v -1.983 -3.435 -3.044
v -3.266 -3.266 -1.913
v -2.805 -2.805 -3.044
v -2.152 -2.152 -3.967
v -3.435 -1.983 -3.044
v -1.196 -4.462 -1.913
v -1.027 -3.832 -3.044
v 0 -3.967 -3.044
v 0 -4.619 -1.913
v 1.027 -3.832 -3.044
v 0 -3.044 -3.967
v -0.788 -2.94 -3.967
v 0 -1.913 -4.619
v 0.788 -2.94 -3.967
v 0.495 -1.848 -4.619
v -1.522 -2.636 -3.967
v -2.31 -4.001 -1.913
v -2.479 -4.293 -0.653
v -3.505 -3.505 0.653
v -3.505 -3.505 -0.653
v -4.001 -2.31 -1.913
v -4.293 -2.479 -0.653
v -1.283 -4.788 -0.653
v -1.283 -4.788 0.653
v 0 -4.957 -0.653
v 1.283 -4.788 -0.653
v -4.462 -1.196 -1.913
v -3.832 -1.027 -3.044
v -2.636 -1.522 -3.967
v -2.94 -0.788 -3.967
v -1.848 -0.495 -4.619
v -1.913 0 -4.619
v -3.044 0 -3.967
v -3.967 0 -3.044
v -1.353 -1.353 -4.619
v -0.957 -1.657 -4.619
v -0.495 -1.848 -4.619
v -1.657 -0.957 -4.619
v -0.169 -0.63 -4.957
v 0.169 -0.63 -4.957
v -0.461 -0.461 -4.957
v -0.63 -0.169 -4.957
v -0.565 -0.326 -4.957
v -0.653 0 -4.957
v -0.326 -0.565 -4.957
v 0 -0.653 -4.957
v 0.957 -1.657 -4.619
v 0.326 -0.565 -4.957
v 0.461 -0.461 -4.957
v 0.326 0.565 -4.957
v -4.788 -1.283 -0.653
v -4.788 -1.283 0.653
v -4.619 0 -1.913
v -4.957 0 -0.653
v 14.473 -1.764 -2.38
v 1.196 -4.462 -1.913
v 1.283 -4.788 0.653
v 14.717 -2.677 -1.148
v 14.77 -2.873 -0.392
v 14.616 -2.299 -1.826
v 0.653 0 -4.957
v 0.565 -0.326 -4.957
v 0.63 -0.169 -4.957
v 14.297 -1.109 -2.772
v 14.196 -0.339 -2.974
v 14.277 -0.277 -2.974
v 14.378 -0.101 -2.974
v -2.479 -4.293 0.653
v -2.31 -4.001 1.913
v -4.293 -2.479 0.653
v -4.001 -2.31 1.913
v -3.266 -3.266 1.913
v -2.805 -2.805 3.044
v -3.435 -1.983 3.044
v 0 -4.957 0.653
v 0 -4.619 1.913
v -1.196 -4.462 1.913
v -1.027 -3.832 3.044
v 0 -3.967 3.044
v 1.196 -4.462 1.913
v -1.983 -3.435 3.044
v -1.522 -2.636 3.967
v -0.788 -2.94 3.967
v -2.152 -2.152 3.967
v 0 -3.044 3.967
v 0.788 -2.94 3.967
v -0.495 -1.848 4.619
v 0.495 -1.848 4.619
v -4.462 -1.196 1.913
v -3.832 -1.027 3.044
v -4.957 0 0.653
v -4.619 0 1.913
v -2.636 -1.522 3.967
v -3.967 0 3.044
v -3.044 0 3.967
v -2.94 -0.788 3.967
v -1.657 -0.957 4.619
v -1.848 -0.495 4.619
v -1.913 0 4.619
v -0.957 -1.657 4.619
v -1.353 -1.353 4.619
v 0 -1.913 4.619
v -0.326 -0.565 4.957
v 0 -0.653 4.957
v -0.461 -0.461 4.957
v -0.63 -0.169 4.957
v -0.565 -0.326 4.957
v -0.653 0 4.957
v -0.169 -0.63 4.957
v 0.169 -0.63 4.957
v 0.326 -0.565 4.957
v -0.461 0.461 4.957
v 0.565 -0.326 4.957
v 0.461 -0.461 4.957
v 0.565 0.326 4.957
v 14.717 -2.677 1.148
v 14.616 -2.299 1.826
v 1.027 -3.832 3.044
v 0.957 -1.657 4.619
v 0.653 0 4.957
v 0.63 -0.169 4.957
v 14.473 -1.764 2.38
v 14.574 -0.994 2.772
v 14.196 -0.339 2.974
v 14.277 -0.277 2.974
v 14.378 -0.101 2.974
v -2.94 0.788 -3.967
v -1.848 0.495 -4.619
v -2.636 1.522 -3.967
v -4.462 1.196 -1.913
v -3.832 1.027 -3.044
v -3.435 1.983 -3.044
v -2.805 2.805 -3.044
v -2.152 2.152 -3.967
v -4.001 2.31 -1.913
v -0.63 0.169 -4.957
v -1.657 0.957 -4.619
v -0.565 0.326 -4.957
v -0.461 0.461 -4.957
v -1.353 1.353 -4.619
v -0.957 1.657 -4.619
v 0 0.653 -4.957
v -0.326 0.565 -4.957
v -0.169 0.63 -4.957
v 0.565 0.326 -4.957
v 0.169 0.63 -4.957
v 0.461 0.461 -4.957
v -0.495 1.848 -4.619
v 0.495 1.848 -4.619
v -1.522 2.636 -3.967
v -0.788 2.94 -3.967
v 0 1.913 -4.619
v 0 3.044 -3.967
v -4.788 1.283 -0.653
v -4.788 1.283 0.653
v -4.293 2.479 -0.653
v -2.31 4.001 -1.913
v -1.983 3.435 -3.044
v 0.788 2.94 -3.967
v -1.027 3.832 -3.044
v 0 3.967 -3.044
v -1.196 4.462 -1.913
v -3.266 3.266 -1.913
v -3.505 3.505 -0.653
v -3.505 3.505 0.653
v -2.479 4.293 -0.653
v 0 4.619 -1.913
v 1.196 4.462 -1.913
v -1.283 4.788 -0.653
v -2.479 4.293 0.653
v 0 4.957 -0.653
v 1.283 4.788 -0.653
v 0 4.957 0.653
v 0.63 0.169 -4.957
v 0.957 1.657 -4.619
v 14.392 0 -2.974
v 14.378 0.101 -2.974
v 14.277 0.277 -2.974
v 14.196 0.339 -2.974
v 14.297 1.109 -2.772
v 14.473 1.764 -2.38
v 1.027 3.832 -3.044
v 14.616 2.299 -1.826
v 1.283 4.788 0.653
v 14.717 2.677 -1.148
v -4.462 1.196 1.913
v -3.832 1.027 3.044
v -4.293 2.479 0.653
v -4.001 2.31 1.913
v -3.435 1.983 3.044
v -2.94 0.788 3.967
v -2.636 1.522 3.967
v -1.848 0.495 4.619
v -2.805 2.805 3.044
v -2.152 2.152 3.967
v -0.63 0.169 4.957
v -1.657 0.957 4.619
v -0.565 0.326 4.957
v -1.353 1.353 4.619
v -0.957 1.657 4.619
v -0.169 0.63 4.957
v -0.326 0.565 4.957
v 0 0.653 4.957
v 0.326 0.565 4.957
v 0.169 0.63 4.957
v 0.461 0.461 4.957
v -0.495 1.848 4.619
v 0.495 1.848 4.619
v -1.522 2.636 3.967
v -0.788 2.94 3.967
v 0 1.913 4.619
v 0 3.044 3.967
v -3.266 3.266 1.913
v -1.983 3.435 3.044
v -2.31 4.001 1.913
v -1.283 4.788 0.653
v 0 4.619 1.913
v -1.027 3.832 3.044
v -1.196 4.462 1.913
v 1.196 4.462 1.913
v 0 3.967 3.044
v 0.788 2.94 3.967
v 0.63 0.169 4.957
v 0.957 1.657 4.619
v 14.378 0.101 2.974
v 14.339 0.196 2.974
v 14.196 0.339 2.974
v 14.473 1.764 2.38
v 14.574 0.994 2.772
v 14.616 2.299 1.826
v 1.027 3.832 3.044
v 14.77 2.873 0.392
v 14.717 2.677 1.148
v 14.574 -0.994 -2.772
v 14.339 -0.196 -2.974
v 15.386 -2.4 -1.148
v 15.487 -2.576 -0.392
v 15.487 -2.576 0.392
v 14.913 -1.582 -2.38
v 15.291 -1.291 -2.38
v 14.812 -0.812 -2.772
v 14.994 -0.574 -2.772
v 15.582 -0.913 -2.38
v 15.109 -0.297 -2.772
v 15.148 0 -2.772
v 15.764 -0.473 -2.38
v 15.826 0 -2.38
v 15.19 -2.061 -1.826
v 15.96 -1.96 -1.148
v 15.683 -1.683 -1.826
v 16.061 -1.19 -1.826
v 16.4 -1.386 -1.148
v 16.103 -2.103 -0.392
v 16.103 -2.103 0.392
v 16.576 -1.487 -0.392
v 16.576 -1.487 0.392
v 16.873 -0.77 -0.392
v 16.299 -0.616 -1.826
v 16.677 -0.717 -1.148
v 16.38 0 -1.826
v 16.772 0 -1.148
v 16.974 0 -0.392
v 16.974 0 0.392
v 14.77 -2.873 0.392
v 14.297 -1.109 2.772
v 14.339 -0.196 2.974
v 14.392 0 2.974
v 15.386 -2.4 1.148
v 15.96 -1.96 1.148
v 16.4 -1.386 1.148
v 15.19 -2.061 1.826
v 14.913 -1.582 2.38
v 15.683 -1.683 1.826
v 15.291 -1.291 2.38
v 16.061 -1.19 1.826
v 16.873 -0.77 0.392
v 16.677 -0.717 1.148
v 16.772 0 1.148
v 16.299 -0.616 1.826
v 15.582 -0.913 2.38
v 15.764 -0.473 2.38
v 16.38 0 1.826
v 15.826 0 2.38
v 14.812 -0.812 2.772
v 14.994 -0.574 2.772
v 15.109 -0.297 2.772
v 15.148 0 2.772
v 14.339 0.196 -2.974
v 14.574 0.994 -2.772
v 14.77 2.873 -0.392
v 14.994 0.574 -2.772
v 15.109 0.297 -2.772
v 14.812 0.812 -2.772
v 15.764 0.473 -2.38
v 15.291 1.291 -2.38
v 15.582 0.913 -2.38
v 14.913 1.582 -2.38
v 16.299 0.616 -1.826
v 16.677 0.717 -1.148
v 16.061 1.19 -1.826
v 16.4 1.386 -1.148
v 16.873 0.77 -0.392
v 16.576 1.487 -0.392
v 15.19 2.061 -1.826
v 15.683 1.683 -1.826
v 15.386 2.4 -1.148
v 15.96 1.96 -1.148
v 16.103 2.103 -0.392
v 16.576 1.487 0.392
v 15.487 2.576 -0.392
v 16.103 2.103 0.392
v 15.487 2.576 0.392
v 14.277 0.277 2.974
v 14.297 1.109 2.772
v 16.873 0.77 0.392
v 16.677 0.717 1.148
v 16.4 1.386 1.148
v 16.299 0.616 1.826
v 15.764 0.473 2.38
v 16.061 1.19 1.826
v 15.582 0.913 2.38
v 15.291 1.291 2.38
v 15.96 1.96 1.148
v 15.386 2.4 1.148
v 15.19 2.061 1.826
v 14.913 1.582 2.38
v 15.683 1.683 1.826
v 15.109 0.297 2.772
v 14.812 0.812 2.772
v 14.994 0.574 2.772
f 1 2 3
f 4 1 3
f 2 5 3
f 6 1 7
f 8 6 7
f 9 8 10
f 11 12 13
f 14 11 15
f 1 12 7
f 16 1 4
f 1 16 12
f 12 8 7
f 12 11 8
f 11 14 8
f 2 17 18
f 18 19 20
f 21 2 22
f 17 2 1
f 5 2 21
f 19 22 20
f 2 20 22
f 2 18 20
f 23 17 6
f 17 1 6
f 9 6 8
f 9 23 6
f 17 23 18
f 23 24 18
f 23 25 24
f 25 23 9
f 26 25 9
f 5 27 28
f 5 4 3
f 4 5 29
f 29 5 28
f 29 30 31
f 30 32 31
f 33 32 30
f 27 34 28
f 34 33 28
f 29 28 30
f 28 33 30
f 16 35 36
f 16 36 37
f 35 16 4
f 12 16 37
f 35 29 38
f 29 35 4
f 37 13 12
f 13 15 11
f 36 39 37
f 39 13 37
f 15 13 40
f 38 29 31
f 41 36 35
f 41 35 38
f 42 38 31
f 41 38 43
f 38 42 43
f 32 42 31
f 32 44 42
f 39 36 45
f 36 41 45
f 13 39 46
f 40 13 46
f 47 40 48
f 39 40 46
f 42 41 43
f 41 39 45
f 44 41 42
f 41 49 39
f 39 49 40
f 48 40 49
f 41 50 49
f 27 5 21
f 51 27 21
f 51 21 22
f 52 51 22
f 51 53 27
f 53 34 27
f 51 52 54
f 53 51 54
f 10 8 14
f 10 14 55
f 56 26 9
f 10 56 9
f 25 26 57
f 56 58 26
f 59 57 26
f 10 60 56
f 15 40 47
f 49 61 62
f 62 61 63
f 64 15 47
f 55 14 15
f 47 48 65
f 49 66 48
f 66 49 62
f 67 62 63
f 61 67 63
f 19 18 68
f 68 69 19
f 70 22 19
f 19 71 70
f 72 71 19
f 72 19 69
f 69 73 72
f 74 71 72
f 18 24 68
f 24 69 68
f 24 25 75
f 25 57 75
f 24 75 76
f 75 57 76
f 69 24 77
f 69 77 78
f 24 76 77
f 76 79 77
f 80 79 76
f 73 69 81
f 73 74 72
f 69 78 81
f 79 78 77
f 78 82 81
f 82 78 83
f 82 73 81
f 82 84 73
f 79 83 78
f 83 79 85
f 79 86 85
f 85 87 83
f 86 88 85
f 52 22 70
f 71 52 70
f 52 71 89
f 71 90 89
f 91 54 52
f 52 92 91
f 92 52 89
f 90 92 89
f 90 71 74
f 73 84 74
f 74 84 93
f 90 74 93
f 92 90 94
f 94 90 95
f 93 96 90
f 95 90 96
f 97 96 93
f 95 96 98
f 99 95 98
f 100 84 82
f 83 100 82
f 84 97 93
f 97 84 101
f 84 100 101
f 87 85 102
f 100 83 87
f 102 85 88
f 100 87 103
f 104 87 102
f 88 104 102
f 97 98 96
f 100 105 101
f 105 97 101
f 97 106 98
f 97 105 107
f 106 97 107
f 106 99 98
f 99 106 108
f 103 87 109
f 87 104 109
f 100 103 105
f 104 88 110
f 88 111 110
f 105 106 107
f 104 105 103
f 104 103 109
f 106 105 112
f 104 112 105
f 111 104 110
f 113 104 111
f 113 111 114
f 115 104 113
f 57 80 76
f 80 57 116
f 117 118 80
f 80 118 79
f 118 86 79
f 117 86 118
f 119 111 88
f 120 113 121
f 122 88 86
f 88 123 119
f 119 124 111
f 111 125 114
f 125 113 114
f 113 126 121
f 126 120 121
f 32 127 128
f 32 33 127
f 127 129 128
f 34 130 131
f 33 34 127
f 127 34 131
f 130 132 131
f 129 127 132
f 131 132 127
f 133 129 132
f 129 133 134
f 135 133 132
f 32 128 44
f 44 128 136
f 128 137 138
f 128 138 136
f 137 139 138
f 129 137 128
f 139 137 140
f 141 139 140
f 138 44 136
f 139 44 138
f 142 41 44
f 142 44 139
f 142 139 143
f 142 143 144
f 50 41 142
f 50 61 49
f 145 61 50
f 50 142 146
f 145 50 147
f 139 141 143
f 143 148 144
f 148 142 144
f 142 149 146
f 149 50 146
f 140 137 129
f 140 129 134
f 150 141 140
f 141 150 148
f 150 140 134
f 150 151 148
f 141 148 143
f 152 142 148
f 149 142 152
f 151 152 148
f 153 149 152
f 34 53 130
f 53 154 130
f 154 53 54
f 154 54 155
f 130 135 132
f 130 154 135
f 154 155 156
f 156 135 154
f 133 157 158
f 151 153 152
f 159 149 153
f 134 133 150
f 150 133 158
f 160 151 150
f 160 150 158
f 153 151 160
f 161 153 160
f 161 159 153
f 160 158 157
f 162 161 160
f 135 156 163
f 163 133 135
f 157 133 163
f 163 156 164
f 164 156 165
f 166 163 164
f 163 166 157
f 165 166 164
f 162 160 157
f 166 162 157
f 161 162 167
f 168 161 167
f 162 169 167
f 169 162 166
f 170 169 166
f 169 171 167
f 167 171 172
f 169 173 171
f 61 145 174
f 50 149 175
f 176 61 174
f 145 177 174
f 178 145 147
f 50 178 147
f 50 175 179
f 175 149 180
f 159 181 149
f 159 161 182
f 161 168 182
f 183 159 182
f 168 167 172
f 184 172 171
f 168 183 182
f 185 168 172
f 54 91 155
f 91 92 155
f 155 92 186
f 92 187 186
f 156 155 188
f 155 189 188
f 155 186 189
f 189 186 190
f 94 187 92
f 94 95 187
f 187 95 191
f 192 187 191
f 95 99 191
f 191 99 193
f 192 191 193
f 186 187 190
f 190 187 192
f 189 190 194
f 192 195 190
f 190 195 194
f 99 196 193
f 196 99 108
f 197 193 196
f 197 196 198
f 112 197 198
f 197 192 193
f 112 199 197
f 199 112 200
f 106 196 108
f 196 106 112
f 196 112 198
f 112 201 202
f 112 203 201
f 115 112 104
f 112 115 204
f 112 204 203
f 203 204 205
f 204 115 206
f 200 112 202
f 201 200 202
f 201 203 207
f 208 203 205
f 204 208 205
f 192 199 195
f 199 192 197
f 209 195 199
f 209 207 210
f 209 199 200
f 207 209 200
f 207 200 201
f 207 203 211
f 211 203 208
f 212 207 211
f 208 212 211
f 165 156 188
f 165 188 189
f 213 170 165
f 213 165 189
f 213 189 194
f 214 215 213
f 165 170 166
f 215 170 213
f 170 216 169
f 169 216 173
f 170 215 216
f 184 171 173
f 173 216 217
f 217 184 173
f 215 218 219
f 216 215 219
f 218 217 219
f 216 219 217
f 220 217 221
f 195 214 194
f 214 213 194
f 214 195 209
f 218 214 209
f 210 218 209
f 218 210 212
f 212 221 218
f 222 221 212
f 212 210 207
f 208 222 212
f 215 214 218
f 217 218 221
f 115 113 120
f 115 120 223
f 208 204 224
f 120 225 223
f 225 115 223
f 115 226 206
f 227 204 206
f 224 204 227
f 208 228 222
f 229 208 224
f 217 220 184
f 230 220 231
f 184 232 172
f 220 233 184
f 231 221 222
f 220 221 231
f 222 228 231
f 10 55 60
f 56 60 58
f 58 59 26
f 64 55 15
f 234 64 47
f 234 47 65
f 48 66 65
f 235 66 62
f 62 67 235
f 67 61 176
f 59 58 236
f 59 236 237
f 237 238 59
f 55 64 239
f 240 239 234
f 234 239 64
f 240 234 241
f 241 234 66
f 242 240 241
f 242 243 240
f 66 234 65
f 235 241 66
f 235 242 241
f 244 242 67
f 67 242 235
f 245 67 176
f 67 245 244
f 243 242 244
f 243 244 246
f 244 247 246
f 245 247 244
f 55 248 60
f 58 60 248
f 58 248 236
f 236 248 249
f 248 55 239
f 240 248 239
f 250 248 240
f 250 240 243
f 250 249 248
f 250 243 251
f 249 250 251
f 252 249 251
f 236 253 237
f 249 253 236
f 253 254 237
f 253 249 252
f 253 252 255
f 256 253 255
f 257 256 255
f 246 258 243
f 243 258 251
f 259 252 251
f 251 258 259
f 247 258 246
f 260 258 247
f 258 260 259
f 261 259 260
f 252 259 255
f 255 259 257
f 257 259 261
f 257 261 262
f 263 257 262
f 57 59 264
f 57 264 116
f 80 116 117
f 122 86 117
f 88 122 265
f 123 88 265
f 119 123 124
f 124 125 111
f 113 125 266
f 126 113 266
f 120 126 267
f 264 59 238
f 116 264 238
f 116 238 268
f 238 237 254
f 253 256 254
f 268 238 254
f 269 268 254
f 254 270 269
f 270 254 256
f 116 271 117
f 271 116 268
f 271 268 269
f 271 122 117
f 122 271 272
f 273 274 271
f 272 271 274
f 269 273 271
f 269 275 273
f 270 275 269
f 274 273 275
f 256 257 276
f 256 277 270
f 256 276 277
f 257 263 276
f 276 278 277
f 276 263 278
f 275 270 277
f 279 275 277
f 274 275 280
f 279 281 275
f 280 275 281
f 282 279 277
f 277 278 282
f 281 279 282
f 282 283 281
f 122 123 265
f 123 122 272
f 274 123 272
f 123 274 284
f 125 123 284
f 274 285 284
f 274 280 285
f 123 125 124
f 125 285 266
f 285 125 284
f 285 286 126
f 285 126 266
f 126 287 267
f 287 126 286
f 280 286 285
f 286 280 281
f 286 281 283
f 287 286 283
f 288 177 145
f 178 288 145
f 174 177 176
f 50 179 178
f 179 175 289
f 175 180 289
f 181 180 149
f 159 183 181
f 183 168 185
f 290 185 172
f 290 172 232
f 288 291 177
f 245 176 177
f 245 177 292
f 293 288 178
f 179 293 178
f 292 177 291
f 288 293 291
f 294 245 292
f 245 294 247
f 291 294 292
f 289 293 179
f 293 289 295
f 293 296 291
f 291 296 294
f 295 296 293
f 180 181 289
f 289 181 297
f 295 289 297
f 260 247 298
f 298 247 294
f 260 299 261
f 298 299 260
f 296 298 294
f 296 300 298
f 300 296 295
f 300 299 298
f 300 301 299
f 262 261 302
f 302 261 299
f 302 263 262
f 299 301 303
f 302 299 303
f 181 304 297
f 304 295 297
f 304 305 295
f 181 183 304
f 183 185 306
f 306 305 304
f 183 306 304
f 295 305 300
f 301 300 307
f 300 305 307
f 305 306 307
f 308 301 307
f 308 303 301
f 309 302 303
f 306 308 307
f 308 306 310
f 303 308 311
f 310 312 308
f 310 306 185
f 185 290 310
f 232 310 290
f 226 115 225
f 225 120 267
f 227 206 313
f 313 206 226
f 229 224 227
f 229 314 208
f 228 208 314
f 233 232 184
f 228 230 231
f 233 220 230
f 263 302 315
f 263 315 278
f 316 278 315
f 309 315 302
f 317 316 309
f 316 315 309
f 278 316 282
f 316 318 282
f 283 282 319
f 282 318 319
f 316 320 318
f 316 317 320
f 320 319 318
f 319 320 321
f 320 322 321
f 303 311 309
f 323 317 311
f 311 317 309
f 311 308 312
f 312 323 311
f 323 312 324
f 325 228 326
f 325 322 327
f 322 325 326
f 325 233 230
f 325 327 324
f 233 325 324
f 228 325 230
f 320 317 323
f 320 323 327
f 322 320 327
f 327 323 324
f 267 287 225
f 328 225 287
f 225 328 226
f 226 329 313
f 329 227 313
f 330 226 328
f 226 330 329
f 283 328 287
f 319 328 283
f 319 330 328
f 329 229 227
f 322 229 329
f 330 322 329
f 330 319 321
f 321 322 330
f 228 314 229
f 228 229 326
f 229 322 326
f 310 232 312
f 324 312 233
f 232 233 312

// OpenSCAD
// hull() over curved solids. OpenSCAD hulls any 3D children; this engine
// historically accepted only boxes.
$fn = 24;
hull() { sphere(5); translate([14, 0, 0]) sphere(3); }
